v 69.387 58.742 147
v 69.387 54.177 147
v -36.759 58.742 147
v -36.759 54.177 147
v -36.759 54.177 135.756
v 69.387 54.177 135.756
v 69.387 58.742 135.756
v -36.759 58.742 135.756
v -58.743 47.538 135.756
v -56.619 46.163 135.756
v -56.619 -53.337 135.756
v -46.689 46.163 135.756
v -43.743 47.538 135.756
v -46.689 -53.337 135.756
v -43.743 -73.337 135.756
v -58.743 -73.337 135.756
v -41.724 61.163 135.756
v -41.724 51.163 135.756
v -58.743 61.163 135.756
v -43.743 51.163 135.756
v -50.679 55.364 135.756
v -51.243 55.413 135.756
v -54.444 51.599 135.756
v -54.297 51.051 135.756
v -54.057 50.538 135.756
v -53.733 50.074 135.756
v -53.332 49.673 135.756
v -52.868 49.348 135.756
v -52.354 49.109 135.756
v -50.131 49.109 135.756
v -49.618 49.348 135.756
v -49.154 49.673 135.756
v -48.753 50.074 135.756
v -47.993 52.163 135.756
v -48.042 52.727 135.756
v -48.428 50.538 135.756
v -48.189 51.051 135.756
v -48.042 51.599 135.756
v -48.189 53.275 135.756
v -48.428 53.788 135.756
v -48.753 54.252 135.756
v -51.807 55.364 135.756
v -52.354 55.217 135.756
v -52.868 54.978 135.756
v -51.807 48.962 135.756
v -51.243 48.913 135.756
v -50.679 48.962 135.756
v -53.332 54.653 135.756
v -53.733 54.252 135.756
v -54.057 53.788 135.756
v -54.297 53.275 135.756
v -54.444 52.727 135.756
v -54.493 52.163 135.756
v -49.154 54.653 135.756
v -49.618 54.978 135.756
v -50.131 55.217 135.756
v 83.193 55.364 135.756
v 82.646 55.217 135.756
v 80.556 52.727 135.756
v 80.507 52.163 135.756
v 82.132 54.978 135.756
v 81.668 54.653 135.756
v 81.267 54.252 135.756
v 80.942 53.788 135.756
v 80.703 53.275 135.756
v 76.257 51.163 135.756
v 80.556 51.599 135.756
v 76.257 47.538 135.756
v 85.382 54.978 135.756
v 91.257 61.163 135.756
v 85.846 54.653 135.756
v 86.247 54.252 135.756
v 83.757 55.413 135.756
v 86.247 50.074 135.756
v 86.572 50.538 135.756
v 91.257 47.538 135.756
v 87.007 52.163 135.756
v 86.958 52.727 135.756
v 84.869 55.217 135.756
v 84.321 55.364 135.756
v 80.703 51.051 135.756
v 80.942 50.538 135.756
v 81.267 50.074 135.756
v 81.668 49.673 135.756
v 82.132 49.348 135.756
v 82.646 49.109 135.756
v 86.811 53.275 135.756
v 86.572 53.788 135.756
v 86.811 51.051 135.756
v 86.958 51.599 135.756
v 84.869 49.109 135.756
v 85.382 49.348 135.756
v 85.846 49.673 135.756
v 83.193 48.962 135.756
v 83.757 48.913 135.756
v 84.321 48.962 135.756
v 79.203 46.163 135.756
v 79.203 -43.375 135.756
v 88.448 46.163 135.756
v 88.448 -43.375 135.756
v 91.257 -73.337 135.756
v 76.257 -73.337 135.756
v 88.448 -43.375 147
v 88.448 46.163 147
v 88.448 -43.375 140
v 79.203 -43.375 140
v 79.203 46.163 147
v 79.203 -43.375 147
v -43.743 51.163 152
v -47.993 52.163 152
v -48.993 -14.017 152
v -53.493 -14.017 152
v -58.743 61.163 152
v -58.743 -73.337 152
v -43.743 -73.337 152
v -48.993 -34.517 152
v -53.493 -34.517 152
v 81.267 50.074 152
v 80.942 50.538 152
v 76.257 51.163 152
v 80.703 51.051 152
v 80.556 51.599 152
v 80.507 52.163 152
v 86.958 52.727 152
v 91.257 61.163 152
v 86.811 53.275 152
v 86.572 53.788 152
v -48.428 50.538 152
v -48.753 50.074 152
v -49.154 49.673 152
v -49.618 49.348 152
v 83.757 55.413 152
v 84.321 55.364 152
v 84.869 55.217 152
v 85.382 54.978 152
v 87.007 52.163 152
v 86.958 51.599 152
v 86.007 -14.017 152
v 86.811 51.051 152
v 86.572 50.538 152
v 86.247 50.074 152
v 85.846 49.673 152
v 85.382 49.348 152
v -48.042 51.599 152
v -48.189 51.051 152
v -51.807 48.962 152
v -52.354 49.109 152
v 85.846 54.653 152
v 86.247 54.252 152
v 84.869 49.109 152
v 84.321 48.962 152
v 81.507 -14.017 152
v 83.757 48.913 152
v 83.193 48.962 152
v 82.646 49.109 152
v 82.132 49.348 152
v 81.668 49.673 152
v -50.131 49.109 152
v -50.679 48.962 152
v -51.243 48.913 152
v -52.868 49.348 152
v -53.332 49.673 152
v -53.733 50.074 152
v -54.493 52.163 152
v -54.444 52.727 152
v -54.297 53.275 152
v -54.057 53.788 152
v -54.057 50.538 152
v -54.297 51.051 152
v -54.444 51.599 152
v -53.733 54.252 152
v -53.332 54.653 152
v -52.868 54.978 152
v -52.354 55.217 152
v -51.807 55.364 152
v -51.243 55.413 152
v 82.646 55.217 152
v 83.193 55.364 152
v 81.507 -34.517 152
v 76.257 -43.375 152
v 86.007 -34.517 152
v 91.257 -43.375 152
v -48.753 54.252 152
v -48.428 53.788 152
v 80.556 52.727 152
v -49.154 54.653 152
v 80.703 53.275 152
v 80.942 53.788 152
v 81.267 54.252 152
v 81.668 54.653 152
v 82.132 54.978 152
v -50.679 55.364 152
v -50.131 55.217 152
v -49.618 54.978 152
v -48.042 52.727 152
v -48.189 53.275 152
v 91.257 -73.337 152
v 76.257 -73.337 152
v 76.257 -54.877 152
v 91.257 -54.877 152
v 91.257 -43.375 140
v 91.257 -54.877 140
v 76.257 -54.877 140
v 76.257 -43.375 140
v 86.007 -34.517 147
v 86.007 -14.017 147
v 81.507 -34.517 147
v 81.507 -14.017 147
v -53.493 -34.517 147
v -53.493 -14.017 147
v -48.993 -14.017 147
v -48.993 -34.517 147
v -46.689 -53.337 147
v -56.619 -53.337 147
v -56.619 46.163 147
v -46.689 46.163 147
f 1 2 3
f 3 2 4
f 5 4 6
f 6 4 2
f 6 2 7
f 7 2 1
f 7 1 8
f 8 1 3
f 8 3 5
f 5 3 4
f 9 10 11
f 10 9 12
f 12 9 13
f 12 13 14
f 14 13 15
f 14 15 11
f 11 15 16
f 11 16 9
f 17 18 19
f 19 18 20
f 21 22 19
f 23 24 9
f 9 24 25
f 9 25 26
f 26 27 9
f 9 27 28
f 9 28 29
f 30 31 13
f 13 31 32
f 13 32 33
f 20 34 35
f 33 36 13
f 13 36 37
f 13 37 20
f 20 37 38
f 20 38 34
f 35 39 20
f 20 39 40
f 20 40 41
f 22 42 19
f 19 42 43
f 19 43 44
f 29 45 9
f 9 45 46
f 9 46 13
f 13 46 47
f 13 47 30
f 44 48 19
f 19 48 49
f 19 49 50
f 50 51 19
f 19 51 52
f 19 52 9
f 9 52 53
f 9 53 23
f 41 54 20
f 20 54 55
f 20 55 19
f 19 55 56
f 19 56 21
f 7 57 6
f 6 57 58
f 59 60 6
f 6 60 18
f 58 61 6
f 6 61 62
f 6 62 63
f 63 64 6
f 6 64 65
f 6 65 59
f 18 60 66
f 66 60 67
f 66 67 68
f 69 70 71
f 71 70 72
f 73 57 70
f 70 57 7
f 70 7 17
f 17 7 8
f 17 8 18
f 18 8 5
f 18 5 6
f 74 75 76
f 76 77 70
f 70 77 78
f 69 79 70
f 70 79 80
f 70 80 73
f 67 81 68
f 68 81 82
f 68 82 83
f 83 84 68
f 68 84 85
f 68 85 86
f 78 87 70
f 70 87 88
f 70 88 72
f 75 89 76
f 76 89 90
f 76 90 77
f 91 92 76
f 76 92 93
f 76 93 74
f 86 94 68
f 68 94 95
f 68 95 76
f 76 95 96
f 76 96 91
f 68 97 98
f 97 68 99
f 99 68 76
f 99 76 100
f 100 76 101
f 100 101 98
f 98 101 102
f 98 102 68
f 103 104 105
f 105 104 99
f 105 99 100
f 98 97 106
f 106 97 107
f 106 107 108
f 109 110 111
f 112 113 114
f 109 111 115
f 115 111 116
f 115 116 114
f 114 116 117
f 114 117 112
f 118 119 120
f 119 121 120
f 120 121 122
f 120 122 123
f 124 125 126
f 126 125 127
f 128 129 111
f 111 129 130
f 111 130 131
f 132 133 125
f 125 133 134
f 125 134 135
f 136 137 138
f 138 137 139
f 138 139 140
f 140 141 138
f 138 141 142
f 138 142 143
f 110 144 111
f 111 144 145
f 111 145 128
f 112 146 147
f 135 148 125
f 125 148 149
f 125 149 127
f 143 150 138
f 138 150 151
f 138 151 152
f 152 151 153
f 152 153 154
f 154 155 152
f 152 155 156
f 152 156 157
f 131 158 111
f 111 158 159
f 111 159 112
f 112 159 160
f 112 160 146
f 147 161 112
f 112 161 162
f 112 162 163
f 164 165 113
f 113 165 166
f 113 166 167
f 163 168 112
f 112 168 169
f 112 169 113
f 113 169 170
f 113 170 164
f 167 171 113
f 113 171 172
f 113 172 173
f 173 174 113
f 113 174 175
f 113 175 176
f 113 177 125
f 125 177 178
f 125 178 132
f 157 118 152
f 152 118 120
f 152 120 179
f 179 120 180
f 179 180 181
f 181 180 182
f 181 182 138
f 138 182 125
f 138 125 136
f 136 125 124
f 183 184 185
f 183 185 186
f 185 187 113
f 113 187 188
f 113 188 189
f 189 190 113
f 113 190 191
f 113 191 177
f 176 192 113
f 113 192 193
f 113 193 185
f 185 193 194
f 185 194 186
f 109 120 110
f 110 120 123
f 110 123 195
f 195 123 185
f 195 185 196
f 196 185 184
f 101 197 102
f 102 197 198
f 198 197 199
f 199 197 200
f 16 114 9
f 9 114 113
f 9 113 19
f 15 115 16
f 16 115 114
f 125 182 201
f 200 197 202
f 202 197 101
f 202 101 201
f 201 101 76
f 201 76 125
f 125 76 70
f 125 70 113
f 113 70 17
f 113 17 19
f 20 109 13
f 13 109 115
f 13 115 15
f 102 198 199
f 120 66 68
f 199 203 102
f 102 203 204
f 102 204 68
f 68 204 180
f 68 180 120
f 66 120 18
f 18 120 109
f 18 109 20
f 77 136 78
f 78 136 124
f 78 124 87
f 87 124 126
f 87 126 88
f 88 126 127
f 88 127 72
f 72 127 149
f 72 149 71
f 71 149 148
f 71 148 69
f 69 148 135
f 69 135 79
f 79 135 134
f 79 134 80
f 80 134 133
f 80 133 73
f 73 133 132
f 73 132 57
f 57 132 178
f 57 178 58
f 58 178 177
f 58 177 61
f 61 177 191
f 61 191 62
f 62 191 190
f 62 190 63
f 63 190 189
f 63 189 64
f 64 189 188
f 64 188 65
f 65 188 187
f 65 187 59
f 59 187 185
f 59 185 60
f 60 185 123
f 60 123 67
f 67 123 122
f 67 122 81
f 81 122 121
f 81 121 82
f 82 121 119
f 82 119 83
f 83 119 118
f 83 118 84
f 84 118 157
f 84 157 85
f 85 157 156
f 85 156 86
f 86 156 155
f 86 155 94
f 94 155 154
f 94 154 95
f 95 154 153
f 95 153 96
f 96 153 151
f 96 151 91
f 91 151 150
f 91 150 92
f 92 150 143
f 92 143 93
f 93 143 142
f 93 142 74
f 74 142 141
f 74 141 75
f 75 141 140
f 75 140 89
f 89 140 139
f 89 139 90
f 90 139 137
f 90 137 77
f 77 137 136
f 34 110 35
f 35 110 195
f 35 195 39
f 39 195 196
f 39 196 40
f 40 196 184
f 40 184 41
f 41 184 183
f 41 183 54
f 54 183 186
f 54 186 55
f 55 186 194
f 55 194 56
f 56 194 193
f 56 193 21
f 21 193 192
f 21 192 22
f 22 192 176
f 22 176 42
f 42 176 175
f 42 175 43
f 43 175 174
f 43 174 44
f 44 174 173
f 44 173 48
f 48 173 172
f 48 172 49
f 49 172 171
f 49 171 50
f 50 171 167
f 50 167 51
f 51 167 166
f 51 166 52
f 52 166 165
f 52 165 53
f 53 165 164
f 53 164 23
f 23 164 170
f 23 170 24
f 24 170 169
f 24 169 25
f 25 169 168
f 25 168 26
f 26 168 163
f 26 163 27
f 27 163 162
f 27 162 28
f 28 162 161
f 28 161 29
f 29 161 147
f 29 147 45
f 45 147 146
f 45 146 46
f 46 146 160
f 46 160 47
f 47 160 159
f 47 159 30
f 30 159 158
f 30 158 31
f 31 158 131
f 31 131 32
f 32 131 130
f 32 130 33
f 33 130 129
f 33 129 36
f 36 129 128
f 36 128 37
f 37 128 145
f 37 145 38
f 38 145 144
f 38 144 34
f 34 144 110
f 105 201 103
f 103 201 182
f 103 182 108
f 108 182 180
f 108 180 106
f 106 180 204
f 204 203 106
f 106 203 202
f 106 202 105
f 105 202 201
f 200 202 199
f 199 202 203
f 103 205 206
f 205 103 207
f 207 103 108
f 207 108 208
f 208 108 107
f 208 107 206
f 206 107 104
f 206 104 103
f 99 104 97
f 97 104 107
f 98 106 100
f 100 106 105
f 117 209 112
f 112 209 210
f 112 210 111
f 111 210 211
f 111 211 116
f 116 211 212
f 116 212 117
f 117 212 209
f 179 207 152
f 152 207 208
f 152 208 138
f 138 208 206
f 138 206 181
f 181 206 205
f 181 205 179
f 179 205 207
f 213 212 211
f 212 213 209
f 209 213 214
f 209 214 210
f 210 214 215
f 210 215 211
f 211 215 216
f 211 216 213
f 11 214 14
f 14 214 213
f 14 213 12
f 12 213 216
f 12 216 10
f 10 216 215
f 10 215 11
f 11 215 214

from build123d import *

# Parameters (mm, degrees)
SKETCH2_W           = 150
SKETCH2_H           = 134.5
SKETCH2_W_2         = 120
SKETCH2_H_2         = 114.5
BOSS_EXTRUDE1_DEPTH = 152
SKETCH3_R           = 3.25
CUT_EXTRUDE1_DEPTH  = 27.5
SKETCH4_W           = 120
SKETCH4_H           = 10.090135052
CUT_EXTRUDE2_DEPTH  = 192.859758942
SKETCH5_W           = 9.929816524
SKETCH5_H           = 99.5
SKETCH5_W_2         = 106.146314573
SKETCH5_H_2         = 4.565432885
SKETCH5_W_3         = 9.245001591
CUT_EXTRUDE3_DEPTH  = 140
SKETCH6_W           = 5
SKETCH6_H           = 99.5
BOSS_EXTRUDE2_DEPTH = 10
SKETCH7_W           = 106.146314573
SKETCH7_H           = 5
BOSS_EXTRUDE3_DEPTH = 6
SKETCH8_W           = 5
SKETCH8_H           = 99.5
BOSS_EXTRUDE4_DEPTH = 10
SKETCH9_R           = 3.25
CUT_EXTRUDE4_DEPTH  = 5
SKETCH11_W          = 12
SKETCH11_H          = 11.501568892
CUT_EXTRUDE5_DEPTH  = 35
SKETCH12_W          = 6.942410631
SKETCH12_H          = 9.961568892
BOSS_EXTRUDE5_DEPTH = 9.5
SKETCH13_W          = 4.5
SKETCH13_H          = 20.5
CUT_EXTRUDE6_DEPTH  = 15
SKETCH14_W          = 137.41211241
SKETCH14_H          = 135.633574501
CUT_EXTRUDE7_DEPTH  = 226.792628158


with BuildPart() as part:
    # Sketch2 → Boss-Extrude1 (new body)
    with BuildSketch(Plane.XY):
        with Locations((16.257088332, -6.086968375)):
            Rectangle(SKETCH2_W, SKETCH2_H)
        with Locations((16.257088332, -6.086968375)):
            Rectangle(SKETCH2_W_2, SKETCH2_H_2, mode=Mode.SUBTRACT)
    extrude(amount=BOSS_EXTRUDE1_DEPTH)

    # Sketch3 → Cut-Extrude1 (cut)
    with BuildSketch(Plane.XY.offset(152)):
        with Locations((-51.242911668, 52.163031625)):
            Circle(SKETCH3_R)
        with Locations((83.757088332, 52.163031625)):
            Circle(SKETCH3_R)
    extrude(amount=-CUT_EXTRUDE1_DEPTH, mode=Mode.SUBTRACT)

    # Sketch4 → Cut-Extrude2 (cut, through all)
    with BuildSketch(Plane.XY.offset(152)):
        with Locations((16.257088332, -68.382035901)):
            Rectangle(SKETCH4_W, SKETCH4_H)
    extrude(amount=-CUT_EXTRUDE2_DEPTH, mode=Mode.SUBTRACT)

    # Sketch5 → Cut-Extrude3 (cut)
    with BuildSketch(Plane.XY.offset(152)):
        with Locations((-51.653725831, -3.586968375)):
            Rectangle(SKETCH5_W, SKETCH5_H)
        with Locations((16.314156243, 56.459462148)):
            Rectangle(SKETCH5_W_2, SKETCH5_H_2)
        with Locations((83.825495028, -3.586968375)):
            Rectangle(SKETCH5_W_3, SKETCH5_H)
    extrude(amount=-CUT_EXTRUDE3_DEPTH, mode=Mode.SUBTRACT)

    # Sketch6 → Boss-Extrude2 (add)
    with BuildSketch(Plane.ZY.offset(46.688817569)):
        with Locations((149.5, -3.586968375)):
            Rectangle(SKETCH6_W, SKETCH6_H)
    extrude(amount=BOSS_EXTRUDE2_DEPTH)

    # Sketch7 → Boss-Extrude3 (add)
    with BuildSketch(Plane(origin=(0, 54.176745705, 0), x_dir=(1, 0, 0), z_dir=(0, 1, 0))):
        with Locations((16.314156243, -149.5)):
            Rectangle(SKETCH7_W, SKETCH7_H)
    extrude(amount=BOSS_EXTRUDE3_DEPTH)

    # Sketch8 → Boss-Extrude4 (add)
    with BuildSketch(Plane(origin=(79.202994232, 0, 0), x_dir=(0, 0, -1), z_dir=(1, 0, 0))):
        with Locations((-149.5, -3.586968375)):
            Rectangle(SKETCH8_W, SKETCH8_H)
    extrude(amount=BOSS_EXTRUDE4_DEPTH)

    # Sketch9 → Cut-Extrude4 (cut)
    with BuildSketch(Plane(origin=(0, 0, 0), x_dir=(-1, 0, 0), z_dir=(0, 0, -1))):
        with Locations((-83.757088332, 56.163031625)):
            Circle(SKETCH9_R)
        with Locations((-83.757088332, -3.836968375)):
            Circle(SKETCH9_R)
        with Locations((51.242911668, -3.836968375)):
            Circle(SKETCH9_R)
        with Locations((51.242911668, 56.163031625)):
            Circle(SKETCH9_R)
    extrude(amount=-CUT_EXTRUDE4_DEPTH, mode=Mode.SUBTRACT)

    # Sketch11 → Cut-Extrude5 (cut)
    with BuildSketch(Plane(origin=(91.257088332, 0, 0), x_dir=(0, 0, -1), z_dir=(1, 0, 0))):
        with Locations((-146, -49.126183929)):
            Rectangle(SKETCH11_W, SKETCH11_H)
    extrude(amount=-CUT_EXTRUDE5_DEPTH, mode=Mode.SUBTRACT)

    # Sketch12 → Boss-Extrude5 (add)
    with BuildSketch(Plane(origin=(79.202994232, 0, 0), x_dir=(0, 0, -1), z_dir=(1, 0, 0))):
        with Locations((-136.528794684, -48.356183929)):
            Rectangle(SKETCH12_W, SKETCH12_H)
    extrude(amount=BOSS_EXTRUDE5_DEPTH)

    # Sketch13 → Cut-Extrude6 (cut)
    with BuildSketch(Plane.XY.offset(152)):
        with Locations((83.757088332, -24.266968375)):
            Rectangle(SKETCH13_W, SKETCH13_H)
        with Locations((-51.242911668, -24.266968375)):
            Rectangle(SKETCH13_W, SKETCH13_H)
    extrude(amount=-CUT_EXTRUDE6_DEPTH, mode=Mode.SUBTRACT)

    # Sketch14 → Cut-Extrude7 (cut, through all)
    with BuildSketch(Plane(origin=(91.257088332, 0, 0), x_dir=(0, 0, -1), z_dir=(1, 0, 0))):
        with Locations((-67.050040254, -6.653755626)):
            Rectangle(SKETCH14_W, SKETCH14_H)
    extrude(amount=-CUT_EXTRUDE7_DEPTH, mode=Mode.SUBTRACT)


solid = part.part
